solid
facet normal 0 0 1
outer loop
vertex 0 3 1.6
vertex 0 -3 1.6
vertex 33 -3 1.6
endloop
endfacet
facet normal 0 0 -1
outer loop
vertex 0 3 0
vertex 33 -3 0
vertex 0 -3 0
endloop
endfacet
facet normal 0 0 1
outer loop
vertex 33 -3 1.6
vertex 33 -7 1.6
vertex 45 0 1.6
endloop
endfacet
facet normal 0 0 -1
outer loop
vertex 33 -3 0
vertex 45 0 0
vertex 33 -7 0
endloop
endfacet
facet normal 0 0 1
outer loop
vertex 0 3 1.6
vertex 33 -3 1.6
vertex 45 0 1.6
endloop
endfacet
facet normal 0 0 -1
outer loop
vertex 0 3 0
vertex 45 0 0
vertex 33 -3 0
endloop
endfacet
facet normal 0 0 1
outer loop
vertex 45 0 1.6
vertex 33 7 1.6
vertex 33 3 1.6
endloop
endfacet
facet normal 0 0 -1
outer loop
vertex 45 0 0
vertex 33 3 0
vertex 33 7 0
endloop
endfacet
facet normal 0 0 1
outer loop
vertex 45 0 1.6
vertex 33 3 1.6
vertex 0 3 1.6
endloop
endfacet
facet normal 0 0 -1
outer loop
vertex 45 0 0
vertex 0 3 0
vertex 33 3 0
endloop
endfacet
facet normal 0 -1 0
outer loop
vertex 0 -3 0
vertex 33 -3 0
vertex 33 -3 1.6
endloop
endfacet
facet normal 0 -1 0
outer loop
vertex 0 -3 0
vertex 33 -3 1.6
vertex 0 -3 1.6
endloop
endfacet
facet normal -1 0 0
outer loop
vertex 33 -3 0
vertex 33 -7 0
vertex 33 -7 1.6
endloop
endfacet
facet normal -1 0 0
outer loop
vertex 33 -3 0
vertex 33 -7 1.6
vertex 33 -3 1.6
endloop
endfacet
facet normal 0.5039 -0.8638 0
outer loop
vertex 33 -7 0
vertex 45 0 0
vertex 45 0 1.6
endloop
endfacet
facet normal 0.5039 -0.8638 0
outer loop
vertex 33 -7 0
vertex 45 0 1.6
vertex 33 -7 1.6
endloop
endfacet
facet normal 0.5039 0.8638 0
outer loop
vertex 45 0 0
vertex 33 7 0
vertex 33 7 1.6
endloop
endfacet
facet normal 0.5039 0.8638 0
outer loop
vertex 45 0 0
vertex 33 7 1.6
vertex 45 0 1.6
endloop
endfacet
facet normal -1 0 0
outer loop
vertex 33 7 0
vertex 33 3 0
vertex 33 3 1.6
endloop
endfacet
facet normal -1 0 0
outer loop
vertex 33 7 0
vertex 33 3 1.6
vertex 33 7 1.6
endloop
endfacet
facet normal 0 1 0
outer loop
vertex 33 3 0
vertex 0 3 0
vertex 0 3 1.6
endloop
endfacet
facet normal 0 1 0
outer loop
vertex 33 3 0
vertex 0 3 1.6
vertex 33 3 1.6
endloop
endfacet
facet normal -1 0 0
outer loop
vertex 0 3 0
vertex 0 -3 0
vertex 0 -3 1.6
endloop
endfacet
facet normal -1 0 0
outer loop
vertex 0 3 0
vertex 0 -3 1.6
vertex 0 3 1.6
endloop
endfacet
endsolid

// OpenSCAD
// Joey : repère de l'avant du corps (une flèche plate à coller dans l'axe du Roomba, la pointe vers l'avant).
// La caméra, tête baissée, la voit en entier : son axe donne l'angle entre la tête et le corps.
longueur_tige = 33;   // mm
largeur_tige  = 6;
longueur_pointe = 12;
largeur_pointe  = 14;
epaisseur = 1.6;
linear_extrude(height = epaisseur)
  polygon([[0, -largeur_tige/2], [longueur_tige, -largeur_tige/2], [longueur_tige, -largeur_pointe/2],
           [longueur_tige + longueur_pointe, 0], [longueur_tige, largeur_pointe/2], [longueur_tige, largeur_tige/2],
           [0, largeur_tige/2]]);
